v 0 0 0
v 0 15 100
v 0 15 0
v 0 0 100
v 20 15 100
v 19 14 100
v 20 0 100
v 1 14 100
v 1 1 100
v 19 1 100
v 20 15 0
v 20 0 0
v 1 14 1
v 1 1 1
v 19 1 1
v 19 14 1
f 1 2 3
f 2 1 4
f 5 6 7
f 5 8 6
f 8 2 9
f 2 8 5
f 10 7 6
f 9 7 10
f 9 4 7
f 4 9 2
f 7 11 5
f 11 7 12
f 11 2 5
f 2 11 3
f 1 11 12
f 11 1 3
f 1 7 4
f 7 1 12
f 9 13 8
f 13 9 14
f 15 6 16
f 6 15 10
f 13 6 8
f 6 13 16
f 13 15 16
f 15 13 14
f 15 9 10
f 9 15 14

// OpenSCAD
//import("/Users/cnandi/research/reincarnate-aec/src/aec/extra-synth/stls/box_calibrate.stl");

difference() {
cube([20, 15, 100]);
    translate([1, 1, 1]) {
        cube([18, 13, 101]);
        }
}
